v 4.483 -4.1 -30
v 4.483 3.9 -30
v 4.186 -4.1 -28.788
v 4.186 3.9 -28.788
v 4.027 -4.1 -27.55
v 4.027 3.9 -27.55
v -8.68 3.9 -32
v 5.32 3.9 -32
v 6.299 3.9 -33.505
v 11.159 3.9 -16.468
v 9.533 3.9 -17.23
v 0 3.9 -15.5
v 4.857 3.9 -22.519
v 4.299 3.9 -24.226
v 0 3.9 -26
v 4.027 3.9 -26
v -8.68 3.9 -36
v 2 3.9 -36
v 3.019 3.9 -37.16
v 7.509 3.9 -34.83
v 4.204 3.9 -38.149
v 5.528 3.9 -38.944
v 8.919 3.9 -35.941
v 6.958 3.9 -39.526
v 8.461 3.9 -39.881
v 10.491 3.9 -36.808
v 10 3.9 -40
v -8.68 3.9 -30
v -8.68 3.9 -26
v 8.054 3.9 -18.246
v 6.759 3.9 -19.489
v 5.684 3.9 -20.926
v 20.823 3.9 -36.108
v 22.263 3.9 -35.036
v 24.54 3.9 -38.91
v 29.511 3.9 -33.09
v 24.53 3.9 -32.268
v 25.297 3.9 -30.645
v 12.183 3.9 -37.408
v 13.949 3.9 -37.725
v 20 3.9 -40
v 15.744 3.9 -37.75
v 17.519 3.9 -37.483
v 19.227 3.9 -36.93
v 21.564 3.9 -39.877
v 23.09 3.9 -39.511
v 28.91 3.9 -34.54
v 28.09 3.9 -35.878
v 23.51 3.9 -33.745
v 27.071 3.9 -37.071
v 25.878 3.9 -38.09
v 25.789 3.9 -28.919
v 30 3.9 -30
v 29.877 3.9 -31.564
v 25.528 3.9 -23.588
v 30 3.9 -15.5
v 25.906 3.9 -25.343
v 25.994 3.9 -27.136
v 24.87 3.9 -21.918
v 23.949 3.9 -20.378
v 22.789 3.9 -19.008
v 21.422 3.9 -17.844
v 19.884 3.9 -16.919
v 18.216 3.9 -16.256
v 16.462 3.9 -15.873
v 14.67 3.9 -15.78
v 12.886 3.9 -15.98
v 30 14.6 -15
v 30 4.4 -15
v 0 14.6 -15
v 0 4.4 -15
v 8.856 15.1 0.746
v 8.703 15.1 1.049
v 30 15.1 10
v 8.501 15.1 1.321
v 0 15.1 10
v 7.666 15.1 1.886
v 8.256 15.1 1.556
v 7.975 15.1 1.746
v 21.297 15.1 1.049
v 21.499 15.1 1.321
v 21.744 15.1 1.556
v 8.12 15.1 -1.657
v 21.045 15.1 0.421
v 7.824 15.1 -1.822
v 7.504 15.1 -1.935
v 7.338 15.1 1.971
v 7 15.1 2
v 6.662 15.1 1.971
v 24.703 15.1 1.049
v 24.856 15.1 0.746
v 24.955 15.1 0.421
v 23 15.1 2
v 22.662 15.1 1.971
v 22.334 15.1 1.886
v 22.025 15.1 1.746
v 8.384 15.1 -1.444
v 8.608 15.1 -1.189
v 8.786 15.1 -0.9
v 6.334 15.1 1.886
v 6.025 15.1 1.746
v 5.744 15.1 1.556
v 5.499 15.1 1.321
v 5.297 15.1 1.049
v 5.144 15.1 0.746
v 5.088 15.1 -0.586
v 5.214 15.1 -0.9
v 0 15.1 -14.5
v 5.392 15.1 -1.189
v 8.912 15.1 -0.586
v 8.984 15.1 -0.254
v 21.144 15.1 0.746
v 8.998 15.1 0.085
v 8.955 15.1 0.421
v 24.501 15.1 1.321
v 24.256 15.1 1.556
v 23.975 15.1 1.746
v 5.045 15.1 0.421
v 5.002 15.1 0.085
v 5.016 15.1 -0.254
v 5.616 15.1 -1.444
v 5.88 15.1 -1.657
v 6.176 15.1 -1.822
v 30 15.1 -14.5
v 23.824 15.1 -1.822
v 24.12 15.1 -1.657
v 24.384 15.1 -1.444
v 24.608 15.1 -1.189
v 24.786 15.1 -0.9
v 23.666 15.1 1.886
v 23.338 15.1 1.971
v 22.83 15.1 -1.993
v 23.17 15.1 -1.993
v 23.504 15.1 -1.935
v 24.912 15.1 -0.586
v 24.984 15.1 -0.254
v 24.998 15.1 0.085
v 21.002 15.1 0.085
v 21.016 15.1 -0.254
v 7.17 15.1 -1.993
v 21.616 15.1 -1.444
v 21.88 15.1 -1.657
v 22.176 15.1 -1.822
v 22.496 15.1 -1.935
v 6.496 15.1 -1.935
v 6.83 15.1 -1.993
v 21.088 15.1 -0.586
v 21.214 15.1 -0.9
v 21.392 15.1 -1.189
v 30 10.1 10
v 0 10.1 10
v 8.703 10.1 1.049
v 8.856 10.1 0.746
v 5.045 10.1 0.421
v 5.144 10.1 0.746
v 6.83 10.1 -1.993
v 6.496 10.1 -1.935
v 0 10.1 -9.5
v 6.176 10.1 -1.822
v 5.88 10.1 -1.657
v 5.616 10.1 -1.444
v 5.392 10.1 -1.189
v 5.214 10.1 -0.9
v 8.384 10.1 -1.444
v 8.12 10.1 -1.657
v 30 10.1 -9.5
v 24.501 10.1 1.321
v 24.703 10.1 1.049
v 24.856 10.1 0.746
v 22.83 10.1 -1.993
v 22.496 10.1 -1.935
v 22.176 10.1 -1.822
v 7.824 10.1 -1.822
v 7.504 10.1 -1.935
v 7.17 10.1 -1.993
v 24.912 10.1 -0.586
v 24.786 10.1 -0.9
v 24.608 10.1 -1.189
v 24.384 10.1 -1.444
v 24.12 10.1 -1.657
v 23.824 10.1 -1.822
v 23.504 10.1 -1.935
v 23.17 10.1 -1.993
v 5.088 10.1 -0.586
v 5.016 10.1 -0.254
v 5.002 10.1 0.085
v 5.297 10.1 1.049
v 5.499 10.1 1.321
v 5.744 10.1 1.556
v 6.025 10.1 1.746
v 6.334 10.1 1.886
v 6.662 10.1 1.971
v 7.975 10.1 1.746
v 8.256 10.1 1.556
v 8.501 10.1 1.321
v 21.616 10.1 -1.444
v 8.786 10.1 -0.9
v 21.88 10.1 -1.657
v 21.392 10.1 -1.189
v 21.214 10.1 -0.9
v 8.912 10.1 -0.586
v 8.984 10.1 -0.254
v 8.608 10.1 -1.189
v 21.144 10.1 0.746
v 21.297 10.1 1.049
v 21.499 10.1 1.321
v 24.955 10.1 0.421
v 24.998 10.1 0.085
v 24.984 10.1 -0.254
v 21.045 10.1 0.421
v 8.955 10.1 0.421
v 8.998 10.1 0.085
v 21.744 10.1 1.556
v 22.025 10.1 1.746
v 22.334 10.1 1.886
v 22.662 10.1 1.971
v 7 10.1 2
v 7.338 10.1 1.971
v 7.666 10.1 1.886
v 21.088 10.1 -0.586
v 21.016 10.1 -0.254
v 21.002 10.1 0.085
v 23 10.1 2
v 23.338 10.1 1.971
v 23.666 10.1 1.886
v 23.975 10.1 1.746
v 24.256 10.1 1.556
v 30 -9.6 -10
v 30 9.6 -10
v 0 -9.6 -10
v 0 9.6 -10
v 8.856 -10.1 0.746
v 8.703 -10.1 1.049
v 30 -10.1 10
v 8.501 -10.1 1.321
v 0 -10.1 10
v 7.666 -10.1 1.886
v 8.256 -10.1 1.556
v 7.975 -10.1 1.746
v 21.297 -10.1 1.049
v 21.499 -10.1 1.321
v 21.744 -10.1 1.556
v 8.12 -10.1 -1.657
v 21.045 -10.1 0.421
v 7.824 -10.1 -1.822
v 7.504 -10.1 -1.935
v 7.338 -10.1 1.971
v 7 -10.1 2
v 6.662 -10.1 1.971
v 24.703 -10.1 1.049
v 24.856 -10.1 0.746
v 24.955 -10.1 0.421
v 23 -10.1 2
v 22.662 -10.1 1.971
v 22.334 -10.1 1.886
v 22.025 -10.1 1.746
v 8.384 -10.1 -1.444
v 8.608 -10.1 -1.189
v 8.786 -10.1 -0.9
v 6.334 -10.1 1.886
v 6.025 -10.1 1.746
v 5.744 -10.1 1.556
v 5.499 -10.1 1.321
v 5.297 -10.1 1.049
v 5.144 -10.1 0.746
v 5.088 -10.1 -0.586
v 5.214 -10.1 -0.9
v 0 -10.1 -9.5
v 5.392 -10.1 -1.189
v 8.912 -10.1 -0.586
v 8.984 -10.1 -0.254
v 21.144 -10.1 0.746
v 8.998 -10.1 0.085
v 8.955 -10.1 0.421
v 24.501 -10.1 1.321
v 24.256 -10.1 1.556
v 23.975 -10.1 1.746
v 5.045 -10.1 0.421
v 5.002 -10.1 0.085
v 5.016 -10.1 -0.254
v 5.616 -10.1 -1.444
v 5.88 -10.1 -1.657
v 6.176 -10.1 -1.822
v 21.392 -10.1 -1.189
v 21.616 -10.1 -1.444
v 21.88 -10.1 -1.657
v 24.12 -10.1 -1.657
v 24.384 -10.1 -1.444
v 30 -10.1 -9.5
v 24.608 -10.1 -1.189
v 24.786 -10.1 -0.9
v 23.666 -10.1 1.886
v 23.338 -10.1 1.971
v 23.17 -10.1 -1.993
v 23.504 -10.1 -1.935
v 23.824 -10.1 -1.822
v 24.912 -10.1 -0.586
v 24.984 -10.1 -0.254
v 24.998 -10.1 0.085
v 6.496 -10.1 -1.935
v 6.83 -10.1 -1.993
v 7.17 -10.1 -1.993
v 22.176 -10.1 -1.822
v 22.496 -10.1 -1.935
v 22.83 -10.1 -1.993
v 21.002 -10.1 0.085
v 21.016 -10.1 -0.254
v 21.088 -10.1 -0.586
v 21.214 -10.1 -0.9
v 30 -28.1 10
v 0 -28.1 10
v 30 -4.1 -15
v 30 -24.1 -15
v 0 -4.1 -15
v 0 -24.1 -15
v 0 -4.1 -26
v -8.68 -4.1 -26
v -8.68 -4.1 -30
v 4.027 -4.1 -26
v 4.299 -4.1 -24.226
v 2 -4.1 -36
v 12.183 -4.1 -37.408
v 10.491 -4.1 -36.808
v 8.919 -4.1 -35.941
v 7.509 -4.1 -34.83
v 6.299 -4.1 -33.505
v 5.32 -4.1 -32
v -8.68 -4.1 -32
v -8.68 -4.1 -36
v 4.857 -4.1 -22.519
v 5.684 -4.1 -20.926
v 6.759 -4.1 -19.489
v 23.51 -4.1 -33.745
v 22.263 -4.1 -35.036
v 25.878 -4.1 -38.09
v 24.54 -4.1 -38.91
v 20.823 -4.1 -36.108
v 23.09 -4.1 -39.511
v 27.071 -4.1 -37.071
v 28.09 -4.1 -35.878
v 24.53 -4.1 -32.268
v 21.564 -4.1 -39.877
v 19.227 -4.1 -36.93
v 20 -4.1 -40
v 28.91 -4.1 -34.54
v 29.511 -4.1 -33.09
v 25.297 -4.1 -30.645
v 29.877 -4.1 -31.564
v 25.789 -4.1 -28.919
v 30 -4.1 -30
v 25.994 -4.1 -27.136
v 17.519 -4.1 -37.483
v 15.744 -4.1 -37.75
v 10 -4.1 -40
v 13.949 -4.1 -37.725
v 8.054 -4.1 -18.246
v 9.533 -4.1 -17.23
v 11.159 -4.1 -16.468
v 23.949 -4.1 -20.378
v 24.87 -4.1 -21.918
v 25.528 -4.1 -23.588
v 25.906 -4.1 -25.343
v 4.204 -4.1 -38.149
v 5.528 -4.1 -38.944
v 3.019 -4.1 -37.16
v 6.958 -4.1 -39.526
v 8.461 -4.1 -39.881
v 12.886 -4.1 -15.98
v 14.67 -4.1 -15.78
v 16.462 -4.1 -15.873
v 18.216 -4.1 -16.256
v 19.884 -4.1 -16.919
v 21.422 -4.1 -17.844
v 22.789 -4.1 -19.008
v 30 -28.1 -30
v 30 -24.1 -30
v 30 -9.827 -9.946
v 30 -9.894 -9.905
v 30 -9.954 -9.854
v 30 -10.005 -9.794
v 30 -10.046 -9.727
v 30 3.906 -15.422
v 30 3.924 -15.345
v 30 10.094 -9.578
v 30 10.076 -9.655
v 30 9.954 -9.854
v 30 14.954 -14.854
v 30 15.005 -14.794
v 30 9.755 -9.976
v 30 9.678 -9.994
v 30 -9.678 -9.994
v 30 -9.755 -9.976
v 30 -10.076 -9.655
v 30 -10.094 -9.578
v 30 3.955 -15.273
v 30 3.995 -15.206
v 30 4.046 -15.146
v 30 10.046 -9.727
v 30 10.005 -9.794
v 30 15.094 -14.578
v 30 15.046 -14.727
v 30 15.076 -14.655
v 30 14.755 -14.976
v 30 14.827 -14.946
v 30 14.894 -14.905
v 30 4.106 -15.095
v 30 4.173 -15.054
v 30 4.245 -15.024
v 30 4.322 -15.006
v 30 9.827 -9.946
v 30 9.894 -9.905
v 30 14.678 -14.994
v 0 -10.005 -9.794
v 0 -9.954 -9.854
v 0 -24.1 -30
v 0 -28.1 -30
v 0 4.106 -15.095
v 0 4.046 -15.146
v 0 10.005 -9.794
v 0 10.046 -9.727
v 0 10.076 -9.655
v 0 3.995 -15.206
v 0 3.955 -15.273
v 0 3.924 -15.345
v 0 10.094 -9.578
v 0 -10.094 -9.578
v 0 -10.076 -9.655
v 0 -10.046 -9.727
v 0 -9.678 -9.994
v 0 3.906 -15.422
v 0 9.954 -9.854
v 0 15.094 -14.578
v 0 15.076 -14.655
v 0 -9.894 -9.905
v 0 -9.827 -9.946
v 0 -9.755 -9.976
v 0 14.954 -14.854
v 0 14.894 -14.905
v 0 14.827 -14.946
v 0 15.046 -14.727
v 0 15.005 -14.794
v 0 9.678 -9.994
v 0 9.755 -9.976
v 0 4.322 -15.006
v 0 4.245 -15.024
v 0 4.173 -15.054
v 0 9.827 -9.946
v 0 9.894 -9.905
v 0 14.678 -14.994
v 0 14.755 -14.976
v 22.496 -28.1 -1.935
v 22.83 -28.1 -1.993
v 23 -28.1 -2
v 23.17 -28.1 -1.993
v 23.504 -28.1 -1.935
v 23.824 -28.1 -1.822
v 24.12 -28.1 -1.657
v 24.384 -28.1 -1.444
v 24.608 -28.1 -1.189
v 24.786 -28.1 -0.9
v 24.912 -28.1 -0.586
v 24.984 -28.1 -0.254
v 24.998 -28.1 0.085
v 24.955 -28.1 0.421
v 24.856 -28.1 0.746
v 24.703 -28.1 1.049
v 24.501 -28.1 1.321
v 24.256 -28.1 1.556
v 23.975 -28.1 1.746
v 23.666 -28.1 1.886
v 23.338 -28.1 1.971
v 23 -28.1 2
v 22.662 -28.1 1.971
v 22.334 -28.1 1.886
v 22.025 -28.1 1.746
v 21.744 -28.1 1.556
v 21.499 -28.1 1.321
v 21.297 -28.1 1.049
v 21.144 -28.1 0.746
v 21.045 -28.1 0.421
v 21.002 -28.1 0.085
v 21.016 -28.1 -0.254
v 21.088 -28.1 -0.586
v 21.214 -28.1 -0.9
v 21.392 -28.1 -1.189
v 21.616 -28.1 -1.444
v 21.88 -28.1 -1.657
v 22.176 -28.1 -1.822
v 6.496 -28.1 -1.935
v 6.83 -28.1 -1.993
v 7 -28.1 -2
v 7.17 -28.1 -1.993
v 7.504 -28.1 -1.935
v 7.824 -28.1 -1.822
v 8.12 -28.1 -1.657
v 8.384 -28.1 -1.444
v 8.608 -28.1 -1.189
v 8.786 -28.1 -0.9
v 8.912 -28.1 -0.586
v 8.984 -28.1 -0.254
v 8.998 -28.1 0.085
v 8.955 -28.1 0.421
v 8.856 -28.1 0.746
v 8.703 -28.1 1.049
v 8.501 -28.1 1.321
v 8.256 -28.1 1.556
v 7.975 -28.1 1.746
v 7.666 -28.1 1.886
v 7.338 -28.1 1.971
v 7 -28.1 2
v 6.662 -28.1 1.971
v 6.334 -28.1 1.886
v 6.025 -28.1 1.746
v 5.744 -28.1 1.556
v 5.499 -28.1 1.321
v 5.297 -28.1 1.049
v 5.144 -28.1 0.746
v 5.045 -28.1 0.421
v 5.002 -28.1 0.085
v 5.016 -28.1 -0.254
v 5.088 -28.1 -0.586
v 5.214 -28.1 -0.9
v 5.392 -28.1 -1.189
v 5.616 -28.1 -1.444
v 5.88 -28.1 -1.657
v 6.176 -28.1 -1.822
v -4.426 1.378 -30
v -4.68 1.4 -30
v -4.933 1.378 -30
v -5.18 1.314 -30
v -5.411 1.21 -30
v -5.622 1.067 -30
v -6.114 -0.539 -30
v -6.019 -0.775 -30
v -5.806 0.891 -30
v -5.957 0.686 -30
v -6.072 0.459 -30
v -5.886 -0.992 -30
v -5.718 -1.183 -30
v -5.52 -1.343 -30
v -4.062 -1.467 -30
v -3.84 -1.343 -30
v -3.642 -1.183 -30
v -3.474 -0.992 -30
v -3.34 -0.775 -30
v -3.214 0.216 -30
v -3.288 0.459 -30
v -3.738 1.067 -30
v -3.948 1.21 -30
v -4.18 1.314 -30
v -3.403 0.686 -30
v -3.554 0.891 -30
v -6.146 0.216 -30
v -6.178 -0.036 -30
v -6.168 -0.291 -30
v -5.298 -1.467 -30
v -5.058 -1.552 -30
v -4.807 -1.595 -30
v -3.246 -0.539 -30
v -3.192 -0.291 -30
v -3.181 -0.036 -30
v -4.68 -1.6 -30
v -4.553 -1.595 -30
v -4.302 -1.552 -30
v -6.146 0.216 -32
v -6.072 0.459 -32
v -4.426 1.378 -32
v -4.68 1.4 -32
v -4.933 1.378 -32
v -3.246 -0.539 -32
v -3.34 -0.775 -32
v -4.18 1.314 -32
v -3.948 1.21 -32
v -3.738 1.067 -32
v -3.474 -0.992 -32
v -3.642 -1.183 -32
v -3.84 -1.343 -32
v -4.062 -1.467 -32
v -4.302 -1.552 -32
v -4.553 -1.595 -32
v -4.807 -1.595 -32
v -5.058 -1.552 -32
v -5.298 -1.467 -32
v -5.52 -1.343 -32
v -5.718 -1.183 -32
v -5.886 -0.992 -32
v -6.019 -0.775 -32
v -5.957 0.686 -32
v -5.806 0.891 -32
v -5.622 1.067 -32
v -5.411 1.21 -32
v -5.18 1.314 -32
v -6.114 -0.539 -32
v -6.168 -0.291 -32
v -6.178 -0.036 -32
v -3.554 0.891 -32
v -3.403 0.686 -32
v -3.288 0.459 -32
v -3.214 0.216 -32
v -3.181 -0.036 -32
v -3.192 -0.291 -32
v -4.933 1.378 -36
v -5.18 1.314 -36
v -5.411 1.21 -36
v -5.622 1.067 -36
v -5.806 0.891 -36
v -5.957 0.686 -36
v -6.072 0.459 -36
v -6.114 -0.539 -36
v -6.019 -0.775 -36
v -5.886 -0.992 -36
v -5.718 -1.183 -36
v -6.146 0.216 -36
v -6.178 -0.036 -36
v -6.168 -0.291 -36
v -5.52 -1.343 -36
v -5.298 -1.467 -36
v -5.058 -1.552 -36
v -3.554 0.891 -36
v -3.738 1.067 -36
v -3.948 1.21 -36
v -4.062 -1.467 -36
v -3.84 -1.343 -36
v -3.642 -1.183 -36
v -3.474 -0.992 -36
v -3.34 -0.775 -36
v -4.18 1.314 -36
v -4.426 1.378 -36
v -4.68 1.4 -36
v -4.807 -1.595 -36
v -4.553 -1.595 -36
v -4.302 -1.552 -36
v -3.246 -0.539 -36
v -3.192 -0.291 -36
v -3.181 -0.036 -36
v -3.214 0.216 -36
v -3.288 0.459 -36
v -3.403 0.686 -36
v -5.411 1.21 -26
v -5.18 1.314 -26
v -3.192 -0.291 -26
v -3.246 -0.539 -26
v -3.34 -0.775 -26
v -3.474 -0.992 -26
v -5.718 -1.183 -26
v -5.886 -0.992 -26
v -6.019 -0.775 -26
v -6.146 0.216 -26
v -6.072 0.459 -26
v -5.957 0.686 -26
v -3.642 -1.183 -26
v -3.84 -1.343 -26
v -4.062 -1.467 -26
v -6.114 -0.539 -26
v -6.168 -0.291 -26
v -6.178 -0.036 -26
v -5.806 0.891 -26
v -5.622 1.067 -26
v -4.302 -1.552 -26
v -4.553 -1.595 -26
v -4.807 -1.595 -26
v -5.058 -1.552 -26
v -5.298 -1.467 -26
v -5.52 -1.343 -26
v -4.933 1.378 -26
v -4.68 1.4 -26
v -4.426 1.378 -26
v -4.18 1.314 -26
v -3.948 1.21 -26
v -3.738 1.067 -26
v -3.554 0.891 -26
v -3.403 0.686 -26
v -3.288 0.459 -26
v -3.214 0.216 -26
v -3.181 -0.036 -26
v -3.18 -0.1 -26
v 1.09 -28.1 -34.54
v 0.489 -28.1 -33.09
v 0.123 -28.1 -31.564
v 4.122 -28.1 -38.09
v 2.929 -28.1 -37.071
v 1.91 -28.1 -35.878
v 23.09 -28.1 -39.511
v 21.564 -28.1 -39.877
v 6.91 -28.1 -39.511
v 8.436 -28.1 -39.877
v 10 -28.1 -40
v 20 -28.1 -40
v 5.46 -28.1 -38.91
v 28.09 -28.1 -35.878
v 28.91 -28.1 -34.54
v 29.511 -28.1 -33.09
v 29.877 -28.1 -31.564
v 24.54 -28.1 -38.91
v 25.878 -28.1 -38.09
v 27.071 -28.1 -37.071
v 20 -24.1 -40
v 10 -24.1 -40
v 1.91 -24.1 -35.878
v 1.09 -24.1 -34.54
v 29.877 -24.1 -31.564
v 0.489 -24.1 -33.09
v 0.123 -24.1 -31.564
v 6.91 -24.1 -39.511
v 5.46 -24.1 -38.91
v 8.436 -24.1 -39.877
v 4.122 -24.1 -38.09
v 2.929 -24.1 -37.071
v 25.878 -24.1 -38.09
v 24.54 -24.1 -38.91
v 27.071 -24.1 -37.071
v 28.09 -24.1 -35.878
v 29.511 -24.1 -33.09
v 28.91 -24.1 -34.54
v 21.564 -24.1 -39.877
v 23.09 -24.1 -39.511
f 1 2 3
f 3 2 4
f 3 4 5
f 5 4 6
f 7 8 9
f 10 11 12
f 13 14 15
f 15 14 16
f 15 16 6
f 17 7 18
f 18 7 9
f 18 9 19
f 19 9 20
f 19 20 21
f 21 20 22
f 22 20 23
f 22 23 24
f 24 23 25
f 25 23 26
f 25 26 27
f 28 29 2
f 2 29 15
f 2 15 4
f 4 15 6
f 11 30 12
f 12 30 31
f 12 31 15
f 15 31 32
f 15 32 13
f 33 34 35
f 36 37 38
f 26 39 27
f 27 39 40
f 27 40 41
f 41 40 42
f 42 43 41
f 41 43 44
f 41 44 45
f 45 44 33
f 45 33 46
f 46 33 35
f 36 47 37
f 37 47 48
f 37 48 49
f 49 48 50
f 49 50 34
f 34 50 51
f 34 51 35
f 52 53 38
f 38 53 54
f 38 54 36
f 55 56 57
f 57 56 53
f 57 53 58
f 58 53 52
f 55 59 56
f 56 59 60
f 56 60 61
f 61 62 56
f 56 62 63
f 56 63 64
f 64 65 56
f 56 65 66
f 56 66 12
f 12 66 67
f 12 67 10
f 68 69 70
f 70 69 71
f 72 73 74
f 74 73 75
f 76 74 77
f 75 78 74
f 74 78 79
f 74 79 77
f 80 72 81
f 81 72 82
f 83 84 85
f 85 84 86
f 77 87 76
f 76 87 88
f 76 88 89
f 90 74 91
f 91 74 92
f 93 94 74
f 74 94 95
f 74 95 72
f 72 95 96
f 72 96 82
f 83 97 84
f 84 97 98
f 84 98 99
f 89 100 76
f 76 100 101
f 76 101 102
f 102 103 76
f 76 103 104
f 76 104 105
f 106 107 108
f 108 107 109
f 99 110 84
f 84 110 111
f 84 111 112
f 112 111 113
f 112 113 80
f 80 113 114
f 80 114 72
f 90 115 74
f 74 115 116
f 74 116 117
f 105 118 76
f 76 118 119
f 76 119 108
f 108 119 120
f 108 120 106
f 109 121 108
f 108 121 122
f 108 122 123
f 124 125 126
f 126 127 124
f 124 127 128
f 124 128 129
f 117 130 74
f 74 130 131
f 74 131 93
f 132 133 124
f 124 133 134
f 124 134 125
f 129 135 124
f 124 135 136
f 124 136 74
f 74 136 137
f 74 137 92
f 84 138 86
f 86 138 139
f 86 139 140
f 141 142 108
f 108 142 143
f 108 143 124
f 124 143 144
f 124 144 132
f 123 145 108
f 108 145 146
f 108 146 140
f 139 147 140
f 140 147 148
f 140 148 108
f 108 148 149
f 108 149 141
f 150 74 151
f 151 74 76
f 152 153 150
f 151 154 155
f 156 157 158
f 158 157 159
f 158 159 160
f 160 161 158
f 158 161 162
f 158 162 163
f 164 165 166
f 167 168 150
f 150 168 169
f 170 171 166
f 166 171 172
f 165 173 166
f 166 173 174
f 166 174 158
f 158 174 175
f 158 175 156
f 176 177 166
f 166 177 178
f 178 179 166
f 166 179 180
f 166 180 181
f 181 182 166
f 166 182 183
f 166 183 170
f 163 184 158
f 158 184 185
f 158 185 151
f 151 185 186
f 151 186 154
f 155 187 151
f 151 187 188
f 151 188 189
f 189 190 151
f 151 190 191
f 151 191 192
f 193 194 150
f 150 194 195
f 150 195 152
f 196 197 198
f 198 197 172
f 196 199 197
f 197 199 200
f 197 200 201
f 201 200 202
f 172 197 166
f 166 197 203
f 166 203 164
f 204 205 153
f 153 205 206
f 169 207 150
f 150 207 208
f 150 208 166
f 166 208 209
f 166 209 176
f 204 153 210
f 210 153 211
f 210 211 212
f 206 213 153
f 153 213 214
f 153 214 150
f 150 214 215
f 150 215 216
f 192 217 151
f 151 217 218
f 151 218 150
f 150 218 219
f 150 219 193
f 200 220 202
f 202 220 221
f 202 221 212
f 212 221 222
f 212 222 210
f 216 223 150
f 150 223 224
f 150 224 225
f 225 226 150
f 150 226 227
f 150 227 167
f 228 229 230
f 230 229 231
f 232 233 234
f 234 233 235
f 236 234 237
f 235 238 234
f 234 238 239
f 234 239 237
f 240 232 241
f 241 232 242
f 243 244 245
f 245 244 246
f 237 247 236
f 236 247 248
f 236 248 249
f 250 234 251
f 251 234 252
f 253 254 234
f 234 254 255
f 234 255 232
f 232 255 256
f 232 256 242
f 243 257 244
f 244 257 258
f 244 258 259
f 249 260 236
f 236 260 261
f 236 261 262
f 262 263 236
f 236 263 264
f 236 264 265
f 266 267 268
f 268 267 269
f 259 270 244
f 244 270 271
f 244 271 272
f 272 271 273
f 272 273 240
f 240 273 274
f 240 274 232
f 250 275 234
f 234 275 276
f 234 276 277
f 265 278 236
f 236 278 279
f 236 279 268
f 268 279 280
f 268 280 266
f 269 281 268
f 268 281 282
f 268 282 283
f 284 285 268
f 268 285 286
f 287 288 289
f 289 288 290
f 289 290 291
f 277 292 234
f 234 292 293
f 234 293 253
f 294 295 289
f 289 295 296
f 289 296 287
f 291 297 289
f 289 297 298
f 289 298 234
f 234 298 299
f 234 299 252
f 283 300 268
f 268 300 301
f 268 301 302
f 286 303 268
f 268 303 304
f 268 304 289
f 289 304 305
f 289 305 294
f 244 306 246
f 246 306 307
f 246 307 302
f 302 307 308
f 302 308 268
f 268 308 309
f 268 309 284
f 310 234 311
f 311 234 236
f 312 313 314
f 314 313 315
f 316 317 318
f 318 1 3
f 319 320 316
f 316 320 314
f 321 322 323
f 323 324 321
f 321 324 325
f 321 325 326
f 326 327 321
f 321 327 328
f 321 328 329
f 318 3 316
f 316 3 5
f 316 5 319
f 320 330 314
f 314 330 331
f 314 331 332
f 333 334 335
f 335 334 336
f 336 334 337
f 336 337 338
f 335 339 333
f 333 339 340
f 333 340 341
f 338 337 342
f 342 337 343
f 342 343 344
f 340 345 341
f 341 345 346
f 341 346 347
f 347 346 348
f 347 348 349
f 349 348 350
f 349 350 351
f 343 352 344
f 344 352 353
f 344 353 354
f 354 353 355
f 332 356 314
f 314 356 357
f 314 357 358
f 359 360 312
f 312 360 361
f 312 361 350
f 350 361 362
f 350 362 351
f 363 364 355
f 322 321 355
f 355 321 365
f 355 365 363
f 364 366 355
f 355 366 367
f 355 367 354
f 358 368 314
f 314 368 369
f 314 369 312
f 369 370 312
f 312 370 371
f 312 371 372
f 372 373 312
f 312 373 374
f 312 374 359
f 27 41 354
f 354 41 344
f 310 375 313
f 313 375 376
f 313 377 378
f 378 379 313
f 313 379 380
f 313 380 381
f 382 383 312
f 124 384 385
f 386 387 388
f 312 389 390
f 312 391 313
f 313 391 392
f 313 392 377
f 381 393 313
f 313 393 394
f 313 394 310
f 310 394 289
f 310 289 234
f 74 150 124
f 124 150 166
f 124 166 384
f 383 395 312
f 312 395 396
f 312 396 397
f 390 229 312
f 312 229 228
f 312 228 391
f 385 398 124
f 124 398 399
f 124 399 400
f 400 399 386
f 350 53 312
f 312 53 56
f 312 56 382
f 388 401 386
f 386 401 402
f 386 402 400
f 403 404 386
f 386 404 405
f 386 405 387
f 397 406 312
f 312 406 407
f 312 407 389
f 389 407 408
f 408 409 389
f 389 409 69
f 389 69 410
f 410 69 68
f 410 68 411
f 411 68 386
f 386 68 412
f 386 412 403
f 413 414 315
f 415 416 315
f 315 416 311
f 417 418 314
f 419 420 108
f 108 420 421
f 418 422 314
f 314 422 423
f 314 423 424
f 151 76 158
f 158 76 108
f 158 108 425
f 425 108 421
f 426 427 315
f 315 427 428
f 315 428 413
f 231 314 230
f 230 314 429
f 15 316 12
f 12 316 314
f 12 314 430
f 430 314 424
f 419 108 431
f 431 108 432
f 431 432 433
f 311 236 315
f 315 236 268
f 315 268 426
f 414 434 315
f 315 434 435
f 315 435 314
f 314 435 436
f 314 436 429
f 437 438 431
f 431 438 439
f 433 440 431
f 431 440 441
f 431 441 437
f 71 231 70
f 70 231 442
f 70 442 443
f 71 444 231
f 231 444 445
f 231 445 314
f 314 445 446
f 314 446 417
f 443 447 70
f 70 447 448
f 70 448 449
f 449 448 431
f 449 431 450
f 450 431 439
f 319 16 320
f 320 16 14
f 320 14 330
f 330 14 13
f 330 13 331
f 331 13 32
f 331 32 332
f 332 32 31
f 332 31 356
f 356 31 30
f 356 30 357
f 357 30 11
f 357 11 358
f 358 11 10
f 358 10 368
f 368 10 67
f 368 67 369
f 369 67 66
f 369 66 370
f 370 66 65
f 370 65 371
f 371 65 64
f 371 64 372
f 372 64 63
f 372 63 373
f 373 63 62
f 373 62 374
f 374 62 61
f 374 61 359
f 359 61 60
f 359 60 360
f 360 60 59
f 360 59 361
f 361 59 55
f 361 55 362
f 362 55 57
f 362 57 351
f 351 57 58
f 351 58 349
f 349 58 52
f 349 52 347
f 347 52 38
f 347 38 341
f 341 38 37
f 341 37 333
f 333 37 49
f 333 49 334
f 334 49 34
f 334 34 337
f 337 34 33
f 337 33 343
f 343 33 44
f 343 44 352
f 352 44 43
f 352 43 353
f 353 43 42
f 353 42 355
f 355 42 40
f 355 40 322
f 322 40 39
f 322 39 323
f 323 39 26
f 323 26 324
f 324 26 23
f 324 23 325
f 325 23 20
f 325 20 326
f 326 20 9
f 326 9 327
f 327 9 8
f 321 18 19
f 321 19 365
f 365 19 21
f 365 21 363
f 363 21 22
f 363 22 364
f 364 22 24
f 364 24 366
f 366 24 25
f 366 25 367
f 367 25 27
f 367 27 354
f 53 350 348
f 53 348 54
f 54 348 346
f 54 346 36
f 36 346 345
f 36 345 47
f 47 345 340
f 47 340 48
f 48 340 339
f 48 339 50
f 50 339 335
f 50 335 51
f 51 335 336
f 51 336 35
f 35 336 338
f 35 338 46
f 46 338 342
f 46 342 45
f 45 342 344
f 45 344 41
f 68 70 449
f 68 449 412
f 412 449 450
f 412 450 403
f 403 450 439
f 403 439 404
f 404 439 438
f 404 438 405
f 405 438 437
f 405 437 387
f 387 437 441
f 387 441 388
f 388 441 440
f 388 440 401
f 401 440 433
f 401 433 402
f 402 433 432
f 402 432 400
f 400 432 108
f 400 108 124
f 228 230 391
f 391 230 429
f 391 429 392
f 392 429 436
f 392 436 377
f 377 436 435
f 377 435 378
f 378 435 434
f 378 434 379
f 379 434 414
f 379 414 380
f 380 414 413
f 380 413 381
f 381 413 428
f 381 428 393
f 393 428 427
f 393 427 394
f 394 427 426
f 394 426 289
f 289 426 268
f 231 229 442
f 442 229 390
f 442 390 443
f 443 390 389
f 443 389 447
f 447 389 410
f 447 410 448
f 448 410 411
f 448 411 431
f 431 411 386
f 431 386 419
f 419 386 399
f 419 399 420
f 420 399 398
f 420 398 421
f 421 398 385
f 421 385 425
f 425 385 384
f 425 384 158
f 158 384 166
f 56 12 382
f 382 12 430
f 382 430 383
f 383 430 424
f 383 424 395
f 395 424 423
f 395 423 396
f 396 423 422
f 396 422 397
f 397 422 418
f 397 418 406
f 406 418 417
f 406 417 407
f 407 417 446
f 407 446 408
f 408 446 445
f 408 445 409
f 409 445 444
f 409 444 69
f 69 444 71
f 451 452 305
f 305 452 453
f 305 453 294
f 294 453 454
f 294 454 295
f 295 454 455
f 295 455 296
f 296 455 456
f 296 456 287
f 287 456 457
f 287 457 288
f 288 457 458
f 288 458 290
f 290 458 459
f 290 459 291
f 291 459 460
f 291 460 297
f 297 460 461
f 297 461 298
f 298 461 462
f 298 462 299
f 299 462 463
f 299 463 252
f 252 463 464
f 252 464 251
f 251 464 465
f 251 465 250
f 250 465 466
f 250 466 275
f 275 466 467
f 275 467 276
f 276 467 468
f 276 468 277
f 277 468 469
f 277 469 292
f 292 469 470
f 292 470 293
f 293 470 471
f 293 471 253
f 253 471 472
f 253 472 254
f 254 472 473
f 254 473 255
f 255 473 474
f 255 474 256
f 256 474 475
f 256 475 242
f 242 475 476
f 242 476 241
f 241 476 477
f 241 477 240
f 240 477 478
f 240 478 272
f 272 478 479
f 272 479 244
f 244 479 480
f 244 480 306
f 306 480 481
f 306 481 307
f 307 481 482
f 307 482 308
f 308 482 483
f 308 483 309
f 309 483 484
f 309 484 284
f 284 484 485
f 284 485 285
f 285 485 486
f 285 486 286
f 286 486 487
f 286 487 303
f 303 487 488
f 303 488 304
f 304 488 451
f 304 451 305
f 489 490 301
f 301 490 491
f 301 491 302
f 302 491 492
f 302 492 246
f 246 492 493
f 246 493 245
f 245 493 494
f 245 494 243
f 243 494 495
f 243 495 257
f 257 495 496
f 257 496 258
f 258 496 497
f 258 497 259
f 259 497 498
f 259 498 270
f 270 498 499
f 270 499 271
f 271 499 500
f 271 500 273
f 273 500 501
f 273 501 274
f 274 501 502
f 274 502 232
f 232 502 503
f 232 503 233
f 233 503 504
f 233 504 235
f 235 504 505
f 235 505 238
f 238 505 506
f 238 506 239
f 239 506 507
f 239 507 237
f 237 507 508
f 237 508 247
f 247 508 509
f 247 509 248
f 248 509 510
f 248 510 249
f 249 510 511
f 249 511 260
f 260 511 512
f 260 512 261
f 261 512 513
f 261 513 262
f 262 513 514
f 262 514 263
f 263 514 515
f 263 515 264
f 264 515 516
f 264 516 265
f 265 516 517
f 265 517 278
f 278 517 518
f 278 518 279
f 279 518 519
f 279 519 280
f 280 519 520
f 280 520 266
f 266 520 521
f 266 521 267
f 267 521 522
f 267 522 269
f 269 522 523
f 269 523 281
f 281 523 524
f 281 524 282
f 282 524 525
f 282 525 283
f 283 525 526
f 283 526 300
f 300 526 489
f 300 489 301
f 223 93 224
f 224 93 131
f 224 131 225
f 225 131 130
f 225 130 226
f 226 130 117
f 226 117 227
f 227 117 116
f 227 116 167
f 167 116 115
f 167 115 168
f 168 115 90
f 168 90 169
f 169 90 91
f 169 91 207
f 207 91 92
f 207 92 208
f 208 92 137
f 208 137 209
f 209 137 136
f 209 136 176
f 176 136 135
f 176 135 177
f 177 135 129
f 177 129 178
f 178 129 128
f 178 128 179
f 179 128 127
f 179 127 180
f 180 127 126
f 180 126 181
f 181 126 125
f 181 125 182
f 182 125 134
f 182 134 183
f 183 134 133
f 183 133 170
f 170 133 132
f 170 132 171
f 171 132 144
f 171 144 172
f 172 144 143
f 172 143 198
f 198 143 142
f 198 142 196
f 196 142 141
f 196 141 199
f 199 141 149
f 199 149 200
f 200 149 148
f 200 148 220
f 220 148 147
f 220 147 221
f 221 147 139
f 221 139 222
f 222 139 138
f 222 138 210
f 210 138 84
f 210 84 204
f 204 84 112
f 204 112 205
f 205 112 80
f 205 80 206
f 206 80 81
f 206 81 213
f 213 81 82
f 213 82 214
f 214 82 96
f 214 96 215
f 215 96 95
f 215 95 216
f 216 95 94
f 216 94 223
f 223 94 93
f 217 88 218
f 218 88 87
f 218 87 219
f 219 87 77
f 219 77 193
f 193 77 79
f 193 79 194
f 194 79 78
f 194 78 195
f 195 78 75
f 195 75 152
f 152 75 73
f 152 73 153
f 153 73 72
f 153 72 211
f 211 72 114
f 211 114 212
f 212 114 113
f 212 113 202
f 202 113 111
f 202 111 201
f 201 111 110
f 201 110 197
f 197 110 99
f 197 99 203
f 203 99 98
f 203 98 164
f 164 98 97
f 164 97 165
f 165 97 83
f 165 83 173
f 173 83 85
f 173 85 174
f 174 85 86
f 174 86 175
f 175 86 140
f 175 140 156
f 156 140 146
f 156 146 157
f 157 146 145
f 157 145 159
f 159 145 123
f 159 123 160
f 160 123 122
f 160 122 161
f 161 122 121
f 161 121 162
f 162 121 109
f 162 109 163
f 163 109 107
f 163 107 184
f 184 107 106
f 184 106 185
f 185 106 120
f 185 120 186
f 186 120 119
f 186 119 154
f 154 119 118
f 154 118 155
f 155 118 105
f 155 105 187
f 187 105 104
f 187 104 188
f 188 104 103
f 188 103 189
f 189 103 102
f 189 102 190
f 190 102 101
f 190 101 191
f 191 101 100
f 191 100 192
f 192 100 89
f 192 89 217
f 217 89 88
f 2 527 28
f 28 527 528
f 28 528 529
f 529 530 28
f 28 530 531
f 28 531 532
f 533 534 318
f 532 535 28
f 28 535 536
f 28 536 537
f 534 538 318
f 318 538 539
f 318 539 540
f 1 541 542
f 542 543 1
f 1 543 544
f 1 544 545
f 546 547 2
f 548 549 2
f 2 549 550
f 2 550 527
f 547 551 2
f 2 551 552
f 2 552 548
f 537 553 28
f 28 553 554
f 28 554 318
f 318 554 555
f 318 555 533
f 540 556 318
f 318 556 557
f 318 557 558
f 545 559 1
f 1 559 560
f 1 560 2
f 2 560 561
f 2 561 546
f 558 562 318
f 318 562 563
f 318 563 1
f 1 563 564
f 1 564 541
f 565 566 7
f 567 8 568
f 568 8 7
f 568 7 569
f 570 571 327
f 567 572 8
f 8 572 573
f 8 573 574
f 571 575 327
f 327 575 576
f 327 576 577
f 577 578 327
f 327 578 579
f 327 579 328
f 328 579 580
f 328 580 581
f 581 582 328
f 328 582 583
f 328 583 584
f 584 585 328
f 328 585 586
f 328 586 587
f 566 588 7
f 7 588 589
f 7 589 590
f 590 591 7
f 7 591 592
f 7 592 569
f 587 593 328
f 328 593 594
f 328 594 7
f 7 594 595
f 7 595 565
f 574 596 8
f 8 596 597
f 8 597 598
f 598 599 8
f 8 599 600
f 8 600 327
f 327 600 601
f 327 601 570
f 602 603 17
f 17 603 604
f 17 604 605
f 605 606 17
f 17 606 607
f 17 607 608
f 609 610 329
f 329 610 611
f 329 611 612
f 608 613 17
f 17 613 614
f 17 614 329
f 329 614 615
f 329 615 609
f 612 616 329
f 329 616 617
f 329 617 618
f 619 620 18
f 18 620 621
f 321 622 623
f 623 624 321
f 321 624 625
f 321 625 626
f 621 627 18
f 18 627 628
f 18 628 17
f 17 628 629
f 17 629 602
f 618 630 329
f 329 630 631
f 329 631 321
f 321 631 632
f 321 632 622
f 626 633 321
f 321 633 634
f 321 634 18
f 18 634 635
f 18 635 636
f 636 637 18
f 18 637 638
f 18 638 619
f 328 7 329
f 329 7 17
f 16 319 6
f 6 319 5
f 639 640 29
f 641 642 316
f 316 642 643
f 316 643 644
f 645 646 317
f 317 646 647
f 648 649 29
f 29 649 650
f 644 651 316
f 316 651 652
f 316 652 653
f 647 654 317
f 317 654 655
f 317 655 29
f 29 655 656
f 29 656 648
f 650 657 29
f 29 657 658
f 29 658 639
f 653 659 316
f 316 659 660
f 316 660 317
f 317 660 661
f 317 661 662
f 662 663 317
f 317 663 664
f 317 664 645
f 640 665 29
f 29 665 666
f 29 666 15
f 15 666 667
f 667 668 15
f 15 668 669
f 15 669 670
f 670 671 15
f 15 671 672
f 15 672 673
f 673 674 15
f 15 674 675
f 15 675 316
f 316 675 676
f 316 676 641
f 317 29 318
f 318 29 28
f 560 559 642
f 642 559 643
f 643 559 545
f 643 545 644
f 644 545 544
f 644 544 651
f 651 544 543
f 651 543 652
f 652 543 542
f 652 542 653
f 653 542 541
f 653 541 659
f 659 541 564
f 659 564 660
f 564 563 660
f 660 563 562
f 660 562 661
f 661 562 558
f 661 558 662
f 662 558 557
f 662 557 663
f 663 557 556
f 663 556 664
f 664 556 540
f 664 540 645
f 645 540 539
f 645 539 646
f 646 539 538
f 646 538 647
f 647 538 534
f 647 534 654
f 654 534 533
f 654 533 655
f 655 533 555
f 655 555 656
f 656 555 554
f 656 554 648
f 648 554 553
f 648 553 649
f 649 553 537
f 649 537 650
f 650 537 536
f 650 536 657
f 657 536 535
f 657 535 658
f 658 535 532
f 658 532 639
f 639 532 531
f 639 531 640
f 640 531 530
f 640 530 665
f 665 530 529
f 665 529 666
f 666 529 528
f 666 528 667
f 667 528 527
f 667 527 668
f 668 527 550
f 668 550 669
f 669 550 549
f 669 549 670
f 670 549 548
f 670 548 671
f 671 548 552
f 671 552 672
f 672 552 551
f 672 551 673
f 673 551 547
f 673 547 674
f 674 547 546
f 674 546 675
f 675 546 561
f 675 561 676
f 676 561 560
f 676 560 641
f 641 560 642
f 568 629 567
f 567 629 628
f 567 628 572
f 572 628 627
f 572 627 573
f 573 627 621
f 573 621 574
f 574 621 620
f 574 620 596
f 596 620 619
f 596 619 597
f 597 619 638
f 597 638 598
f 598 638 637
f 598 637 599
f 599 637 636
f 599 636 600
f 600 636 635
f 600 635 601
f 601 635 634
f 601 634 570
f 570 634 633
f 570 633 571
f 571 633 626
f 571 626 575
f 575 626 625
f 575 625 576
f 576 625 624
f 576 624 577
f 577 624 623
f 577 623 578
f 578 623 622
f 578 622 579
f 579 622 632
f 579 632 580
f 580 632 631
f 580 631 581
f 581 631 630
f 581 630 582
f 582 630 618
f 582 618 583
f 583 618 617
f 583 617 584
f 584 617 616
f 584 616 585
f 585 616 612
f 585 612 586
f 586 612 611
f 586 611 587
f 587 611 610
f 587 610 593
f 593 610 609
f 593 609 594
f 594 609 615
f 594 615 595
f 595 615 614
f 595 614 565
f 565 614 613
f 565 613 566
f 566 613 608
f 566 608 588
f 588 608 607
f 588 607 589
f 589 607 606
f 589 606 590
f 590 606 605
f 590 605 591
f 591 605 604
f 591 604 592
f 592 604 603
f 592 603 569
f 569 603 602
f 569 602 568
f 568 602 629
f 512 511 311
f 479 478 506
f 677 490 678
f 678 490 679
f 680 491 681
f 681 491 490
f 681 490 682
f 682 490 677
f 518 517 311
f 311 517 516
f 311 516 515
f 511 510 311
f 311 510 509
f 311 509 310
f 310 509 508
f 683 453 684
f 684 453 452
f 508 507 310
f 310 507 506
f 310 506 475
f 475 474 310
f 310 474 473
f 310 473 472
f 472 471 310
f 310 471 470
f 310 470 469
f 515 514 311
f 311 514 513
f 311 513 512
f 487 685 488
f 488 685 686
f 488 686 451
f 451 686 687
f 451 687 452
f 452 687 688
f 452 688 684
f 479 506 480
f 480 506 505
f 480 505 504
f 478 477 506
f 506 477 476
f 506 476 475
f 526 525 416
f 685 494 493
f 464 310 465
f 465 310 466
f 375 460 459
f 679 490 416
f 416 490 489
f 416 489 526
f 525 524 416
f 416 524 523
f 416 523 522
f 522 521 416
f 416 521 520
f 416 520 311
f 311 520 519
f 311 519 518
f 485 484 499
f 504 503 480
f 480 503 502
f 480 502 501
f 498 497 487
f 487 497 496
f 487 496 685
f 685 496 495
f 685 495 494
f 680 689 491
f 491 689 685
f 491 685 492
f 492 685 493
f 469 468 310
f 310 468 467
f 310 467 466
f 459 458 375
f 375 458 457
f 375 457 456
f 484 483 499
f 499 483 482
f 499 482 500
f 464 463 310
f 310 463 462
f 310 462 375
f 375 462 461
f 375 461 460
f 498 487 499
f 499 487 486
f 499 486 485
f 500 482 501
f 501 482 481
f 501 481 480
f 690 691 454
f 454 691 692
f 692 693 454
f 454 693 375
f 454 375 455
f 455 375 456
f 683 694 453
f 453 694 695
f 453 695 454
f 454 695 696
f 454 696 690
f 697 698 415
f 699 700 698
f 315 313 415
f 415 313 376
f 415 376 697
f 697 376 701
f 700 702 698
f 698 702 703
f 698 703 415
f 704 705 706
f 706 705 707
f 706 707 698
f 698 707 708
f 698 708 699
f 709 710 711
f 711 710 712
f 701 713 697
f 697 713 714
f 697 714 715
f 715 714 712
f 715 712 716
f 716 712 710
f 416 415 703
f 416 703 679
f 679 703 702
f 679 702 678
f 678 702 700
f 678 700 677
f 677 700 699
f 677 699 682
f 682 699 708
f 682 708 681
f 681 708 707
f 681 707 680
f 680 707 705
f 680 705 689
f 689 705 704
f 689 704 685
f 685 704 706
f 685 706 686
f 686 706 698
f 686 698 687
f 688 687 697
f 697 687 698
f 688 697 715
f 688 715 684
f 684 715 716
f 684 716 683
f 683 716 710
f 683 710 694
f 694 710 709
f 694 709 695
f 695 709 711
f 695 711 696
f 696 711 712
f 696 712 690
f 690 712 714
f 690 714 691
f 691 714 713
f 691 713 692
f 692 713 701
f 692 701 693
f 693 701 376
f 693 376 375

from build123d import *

# Parameters (mm, degrees)
SKETCH2_W               = 30
SKETCH2_H               = 8
SKETCH2_W_2             = 20
SKETCH2_H_2             = 5
BOSS_EXTRUDE1_DEPTH     = 30
SKETCH3_R               = 11
CUT_EXTRUDE1_DEPTH      = 55.626001135
FILLET1_R               = 10
FILLET2_R               = 0.5
SKETCH4_R               = 2
CUT_EXTRUDE2_DEPTH      = 61.018663764
SKETCH5_W               = 6
SKETCH5_H               = 2
CUT_EXTRUDE3_DEPTH      = 55.626001135
SKETCH6_W               = 14
SKETCH6_H               = 4
SKETCH6_W_2             = 12.707178849
BOSS_EXTRUDE2_DEPTH     = 8
CUT_EXTRUDE4_DEPTH      = 58.823956973
CUT_EXTRUDE4_DEPTH_BACK = 58.823956973
SKETCH7_R               = 1.5
SKETCH8_W               = 30
SKETCH8_H               = 25
SKETCH8_R               = 2
BOSS_EXTRUDE3_DEPTH     = 6
SKETCH9_R               = 2
BOSS_EXTRUDE4_DEPTH     = 4


with BuildPart() as part:
    # Sketch2 → Boss-Extrude1 (new body)
    with BuildSketch(Plane(origin=(0, 0, 0), x_dir=(0, 0, -1), z_dir=(1, 0, 0))):
        with Locations((25, -0.1)):
            Rectangle(SKETCH2_W, SKETCH2_H)
        Polygon((10, 15.1), (10, 10.1), (10, 3.9), (15, 3.9), (15, 15.1), align=None)
        with Locations((0, 12.6)):
            Rectangle(SKETCH2_W_2, SKETCH2_H_2)
        with Locations((0, -14.1)):
            Rectangle(SKETCH2_W_2, SKETCH2_H)
        Polygon((15, -4.1), (10, -4.1), (10, -10.1), (10, -18.1), (15, -18.1), align=None)
    extrude(amount=BOSS_EXTRUDE1_DEPTH)

    # Sketch3 → Cut-Extrude1 (cut, through all)
    with BuildSketch(Plane(origin=(0, 3.9, 0), x_dir=(1, 0, 0), z_dir=(0, 1, 0))):
        with Locations(Location((15, 26.775, 0), (0, 0, 270))):
            Circle(SKETCH3_R)
    extrude(amount=-CUT_EXTRUDE1_DEPTH, mode=Mode.SUBTRACT)

    # Fillet1
    fillet1_edges = [part.edges().sort_by_distance(p)[0] for p in [
        (0, -0.1, -40),
        (30, -0.1, -40),
    ]]
    fillet(fillet1_edges, radius=FILLET1_R)

    # Fillet2
    fillet2_edges = [part.edges().sort_by_distance(p)[0] for p in [
        (15, -10.1, -10),
        (15, 10.1, -10),
        (15, 15.1, -15),
        (15, 3.9, -15),
    ]]
    fillet(fillet2_edges, radius=FILLET2_R)

    # Sketch4 → Cut-Extrude2 (cut, through all)
    with BuildSketch(Plane(origin=(0, 15.1, 0), x_dir=(1, 0, 0), z_dir=(0, 1, 0))):
        with Locations(Location((7, 0, 0), (0, 0, 270))):
            Circle(SKETCH4_R)
        with Locations(Location((23, 0, 0), (0, 0, 270))):
            Circle(SKETCH4_R)
    extrude(amount=-CUT_EXTRUDE2_DEPTH, mode=Mode.SUBTRACT)

    # Sketch5 → Cut-Extrude3 (cut, through all)
    with BuildSketch(Plane(origin=(0, 3.9, 0), x_dir=(1, 0, 0), z_dir=(0, 1, 0))):
        with Locations((3, 31)):
            Rectangle(SKETCH5_W, SKETCH5_H)
    extrude(amount=-CUT_EXTRUDE3_DEPTH, mode=Mode.SUBTRACT)

    # Sketch6 → Boss-Extrude2 (add)
    with BuildSketch(Plane(origin=(0, 3.9, 0), x_dir=(1, 0, 0), z_dir=(0, 1, 0))):
        with Locations((-1.679843749, 34)):
            Rectangle(SKETCH6_W, SKETCH6_H)
        with Locations((-2.326254324, 28)):
            Rectangle(SKETCH6_W_2, SKETCH6_H)
    extrude(amount=-BOSS_EXTRUDE2_DEPTH)

    # Sketch7 → Cut-Extrude4 (cut, two sides: drawn at the far end of the back side and taken through both)
    with BuildSketch(Plane(origin=(0, 0, -36), x_dir=(-1, 0, 0), z_dir=(0, 0, -1)).offset(-CUT_EXTRUDE4_DEPTH_BACK)):
        with Locations(Location((4.679843749, -0.1, 0), (0, 0, 180))):
            Circle(SKETCH7_R)
    extrude(amount=CUT_EXTRUDE4_DEPTH + CUT_EXTRUDE4_DEPTH_BACK, mode=Mode.SUBTRACT)

    # Sketch8 → Boss-Extrude3 (add)
    with BuildSketch(Plane.XZ.offset(18.1)):
        with Locations((15, -2.5)):
            Rectangle(SKETCH8_W, SKETCH8_H)
        with Locations(Location((7, 0, 0), (0, 0, 90))):
            Circle(SKETCH8_R, mode=Mode.SUBTRACT)
        with Locations(Location((23, 0, 0), (0, 0, 90))):
            Circle(SKETCH8_R, mode=Mode.SUBTRACT)
    extrude(amount=BOSS_EXTRUDE3_DEPTH)

    # Sketch9 → Boss-Extrude4 (add)
    with BuildSketch(Plane.XZ.offset(24.1)):
        with BuildLine():
            Line((0, -30), (0, -15))
            Line((0, -15), (0, 10))
            Line((0, 10), (30, 10))
            Line((30, 10), (30, -15))
            Line((30, -15), (30, -30))
            ThreePointArc((30, -30), (27.071067812, -37.071067812), (20, -40))
            Line((20, -40), (10, -40))
            ThreePointArc((10, -40), (2.928932188, -37.071067812), (0, -30))
        make_face()
        with Locations(Location((7, 0, 0), (0, 0, 90))):
            Circle(SKETCH9_R, mode=Mode.SUBTRACT)
        with Locations(Location((23, 0, 0), (0, 0, 90))):
            Circle(SKETCH9_R, mode=Mode.SUBTRACT)
    extrude(amount=BOSS_EXTRUDE4_DEPTH)


solid = part.part
